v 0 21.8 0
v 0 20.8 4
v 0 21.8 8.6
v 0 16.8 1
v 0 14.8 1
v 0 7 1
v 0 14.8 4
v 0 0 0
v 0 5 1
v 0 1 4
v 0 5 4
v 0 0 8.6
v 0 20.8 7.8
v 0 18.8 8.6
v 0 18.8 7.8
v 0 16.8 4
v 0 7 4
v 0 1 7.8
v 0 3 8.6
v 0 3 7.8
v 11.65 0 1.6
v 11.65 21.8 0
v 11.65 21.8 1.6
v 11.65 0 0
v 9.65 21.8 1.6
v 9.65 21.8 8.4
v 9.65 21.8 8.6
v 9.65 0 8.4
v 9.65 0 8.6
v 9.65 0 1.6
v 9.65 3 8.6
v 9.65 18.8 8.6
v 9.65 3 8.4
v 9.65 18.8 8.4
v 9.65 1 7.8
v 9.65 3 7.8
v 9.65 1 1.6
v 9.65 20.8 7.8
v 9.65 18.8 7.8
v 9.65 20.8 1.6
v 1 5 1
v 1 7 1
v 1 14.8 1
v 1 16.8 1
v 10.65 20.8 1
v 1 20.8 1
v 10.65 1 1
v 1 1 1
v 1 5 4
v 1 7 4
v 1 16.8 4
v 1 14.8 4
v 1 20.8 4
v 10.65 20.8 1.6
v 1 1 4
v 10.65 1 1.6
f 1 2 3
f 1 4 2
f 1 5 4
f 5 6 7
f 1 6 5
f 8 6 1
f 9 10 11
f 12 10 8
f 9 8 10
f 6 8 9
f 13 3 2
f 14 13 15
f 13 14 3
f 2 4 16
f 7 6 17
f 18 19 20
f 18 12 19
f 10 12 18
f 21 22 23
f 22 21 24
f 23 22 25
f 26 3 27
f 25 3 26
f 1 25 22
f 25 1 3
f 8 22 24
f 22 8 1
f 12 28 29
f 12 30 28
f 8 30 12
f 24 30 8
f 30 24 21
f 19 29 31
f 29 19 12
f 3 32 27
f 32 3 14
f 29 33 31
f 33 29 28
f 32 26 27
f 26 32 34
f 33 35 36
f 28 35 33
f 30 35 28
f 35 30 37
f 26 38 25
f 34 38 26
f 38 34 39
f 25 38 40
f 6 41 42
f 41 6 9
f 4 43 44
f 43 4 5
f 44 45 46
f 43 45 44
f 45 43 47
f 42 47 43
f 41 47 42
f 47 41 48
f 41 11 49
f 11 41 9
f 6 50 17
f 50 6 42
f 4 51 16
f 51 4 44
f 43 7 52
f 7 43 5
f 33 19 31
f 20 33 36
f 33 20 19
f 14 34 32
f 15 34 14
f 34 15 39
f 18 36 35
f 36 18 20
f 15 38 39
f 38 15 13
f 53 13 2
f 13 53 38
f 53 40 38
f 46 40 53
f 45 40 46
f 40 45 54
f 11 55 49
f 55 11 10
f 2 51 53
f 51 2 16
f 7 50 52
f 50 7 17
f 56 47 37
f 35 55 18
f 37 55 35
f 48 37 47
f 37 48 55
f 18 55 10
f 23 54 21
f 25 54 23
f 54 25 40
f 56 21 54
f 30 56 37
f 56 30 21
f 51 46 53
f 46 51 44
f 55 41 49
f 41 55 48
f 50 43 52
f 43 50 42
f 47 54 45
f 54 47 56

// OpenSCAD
module holder() {
  switch_x = 9.65;
  switch_y = 19.8;
  switch_z = 6.8;

  difference() {
    union() {
      // lower plate
      cube([switch_x + 2, switch_y + 2, 4], false);

      // edges
      translate([0, 0, 0])
        cube([switch_x, switch_y + 2, switch_z + 1.8], false);
    }

    // grabbers
    // translate([-1, 1, switch_z])
    // hull() {
    //   // upper
    //   translate([0, 1, 1])
    //     cube([switch_x + 2, switch_y - 2, 1], false);

    //   //lower
    //   translate([0, 0, 0])
    //     cube([switch_x + 2, switch_y, 1], false);
    // }

    translate([-1, 3, switch_z])
      cube([switch_x + 2, switch_y - 4, 3], false);

    // lower back edge
    translate([-1, 1, 4])
      cube([3, switch_y, switch_z - 3], false);

    // lower front edge
    translate([switch_x, -1, 1.6])
      cube([switch_x, switch_y + 4, switch_z], false);

    // jags
    for (y = [5, switch_y - 5])
      translate([-1, y, 1])
        cube([3, 2, 10], false);

    // switch
    translate([1, 1, 1])
      cube([switch_x, switch_y, switch_z], false);
  }

}

holder();
